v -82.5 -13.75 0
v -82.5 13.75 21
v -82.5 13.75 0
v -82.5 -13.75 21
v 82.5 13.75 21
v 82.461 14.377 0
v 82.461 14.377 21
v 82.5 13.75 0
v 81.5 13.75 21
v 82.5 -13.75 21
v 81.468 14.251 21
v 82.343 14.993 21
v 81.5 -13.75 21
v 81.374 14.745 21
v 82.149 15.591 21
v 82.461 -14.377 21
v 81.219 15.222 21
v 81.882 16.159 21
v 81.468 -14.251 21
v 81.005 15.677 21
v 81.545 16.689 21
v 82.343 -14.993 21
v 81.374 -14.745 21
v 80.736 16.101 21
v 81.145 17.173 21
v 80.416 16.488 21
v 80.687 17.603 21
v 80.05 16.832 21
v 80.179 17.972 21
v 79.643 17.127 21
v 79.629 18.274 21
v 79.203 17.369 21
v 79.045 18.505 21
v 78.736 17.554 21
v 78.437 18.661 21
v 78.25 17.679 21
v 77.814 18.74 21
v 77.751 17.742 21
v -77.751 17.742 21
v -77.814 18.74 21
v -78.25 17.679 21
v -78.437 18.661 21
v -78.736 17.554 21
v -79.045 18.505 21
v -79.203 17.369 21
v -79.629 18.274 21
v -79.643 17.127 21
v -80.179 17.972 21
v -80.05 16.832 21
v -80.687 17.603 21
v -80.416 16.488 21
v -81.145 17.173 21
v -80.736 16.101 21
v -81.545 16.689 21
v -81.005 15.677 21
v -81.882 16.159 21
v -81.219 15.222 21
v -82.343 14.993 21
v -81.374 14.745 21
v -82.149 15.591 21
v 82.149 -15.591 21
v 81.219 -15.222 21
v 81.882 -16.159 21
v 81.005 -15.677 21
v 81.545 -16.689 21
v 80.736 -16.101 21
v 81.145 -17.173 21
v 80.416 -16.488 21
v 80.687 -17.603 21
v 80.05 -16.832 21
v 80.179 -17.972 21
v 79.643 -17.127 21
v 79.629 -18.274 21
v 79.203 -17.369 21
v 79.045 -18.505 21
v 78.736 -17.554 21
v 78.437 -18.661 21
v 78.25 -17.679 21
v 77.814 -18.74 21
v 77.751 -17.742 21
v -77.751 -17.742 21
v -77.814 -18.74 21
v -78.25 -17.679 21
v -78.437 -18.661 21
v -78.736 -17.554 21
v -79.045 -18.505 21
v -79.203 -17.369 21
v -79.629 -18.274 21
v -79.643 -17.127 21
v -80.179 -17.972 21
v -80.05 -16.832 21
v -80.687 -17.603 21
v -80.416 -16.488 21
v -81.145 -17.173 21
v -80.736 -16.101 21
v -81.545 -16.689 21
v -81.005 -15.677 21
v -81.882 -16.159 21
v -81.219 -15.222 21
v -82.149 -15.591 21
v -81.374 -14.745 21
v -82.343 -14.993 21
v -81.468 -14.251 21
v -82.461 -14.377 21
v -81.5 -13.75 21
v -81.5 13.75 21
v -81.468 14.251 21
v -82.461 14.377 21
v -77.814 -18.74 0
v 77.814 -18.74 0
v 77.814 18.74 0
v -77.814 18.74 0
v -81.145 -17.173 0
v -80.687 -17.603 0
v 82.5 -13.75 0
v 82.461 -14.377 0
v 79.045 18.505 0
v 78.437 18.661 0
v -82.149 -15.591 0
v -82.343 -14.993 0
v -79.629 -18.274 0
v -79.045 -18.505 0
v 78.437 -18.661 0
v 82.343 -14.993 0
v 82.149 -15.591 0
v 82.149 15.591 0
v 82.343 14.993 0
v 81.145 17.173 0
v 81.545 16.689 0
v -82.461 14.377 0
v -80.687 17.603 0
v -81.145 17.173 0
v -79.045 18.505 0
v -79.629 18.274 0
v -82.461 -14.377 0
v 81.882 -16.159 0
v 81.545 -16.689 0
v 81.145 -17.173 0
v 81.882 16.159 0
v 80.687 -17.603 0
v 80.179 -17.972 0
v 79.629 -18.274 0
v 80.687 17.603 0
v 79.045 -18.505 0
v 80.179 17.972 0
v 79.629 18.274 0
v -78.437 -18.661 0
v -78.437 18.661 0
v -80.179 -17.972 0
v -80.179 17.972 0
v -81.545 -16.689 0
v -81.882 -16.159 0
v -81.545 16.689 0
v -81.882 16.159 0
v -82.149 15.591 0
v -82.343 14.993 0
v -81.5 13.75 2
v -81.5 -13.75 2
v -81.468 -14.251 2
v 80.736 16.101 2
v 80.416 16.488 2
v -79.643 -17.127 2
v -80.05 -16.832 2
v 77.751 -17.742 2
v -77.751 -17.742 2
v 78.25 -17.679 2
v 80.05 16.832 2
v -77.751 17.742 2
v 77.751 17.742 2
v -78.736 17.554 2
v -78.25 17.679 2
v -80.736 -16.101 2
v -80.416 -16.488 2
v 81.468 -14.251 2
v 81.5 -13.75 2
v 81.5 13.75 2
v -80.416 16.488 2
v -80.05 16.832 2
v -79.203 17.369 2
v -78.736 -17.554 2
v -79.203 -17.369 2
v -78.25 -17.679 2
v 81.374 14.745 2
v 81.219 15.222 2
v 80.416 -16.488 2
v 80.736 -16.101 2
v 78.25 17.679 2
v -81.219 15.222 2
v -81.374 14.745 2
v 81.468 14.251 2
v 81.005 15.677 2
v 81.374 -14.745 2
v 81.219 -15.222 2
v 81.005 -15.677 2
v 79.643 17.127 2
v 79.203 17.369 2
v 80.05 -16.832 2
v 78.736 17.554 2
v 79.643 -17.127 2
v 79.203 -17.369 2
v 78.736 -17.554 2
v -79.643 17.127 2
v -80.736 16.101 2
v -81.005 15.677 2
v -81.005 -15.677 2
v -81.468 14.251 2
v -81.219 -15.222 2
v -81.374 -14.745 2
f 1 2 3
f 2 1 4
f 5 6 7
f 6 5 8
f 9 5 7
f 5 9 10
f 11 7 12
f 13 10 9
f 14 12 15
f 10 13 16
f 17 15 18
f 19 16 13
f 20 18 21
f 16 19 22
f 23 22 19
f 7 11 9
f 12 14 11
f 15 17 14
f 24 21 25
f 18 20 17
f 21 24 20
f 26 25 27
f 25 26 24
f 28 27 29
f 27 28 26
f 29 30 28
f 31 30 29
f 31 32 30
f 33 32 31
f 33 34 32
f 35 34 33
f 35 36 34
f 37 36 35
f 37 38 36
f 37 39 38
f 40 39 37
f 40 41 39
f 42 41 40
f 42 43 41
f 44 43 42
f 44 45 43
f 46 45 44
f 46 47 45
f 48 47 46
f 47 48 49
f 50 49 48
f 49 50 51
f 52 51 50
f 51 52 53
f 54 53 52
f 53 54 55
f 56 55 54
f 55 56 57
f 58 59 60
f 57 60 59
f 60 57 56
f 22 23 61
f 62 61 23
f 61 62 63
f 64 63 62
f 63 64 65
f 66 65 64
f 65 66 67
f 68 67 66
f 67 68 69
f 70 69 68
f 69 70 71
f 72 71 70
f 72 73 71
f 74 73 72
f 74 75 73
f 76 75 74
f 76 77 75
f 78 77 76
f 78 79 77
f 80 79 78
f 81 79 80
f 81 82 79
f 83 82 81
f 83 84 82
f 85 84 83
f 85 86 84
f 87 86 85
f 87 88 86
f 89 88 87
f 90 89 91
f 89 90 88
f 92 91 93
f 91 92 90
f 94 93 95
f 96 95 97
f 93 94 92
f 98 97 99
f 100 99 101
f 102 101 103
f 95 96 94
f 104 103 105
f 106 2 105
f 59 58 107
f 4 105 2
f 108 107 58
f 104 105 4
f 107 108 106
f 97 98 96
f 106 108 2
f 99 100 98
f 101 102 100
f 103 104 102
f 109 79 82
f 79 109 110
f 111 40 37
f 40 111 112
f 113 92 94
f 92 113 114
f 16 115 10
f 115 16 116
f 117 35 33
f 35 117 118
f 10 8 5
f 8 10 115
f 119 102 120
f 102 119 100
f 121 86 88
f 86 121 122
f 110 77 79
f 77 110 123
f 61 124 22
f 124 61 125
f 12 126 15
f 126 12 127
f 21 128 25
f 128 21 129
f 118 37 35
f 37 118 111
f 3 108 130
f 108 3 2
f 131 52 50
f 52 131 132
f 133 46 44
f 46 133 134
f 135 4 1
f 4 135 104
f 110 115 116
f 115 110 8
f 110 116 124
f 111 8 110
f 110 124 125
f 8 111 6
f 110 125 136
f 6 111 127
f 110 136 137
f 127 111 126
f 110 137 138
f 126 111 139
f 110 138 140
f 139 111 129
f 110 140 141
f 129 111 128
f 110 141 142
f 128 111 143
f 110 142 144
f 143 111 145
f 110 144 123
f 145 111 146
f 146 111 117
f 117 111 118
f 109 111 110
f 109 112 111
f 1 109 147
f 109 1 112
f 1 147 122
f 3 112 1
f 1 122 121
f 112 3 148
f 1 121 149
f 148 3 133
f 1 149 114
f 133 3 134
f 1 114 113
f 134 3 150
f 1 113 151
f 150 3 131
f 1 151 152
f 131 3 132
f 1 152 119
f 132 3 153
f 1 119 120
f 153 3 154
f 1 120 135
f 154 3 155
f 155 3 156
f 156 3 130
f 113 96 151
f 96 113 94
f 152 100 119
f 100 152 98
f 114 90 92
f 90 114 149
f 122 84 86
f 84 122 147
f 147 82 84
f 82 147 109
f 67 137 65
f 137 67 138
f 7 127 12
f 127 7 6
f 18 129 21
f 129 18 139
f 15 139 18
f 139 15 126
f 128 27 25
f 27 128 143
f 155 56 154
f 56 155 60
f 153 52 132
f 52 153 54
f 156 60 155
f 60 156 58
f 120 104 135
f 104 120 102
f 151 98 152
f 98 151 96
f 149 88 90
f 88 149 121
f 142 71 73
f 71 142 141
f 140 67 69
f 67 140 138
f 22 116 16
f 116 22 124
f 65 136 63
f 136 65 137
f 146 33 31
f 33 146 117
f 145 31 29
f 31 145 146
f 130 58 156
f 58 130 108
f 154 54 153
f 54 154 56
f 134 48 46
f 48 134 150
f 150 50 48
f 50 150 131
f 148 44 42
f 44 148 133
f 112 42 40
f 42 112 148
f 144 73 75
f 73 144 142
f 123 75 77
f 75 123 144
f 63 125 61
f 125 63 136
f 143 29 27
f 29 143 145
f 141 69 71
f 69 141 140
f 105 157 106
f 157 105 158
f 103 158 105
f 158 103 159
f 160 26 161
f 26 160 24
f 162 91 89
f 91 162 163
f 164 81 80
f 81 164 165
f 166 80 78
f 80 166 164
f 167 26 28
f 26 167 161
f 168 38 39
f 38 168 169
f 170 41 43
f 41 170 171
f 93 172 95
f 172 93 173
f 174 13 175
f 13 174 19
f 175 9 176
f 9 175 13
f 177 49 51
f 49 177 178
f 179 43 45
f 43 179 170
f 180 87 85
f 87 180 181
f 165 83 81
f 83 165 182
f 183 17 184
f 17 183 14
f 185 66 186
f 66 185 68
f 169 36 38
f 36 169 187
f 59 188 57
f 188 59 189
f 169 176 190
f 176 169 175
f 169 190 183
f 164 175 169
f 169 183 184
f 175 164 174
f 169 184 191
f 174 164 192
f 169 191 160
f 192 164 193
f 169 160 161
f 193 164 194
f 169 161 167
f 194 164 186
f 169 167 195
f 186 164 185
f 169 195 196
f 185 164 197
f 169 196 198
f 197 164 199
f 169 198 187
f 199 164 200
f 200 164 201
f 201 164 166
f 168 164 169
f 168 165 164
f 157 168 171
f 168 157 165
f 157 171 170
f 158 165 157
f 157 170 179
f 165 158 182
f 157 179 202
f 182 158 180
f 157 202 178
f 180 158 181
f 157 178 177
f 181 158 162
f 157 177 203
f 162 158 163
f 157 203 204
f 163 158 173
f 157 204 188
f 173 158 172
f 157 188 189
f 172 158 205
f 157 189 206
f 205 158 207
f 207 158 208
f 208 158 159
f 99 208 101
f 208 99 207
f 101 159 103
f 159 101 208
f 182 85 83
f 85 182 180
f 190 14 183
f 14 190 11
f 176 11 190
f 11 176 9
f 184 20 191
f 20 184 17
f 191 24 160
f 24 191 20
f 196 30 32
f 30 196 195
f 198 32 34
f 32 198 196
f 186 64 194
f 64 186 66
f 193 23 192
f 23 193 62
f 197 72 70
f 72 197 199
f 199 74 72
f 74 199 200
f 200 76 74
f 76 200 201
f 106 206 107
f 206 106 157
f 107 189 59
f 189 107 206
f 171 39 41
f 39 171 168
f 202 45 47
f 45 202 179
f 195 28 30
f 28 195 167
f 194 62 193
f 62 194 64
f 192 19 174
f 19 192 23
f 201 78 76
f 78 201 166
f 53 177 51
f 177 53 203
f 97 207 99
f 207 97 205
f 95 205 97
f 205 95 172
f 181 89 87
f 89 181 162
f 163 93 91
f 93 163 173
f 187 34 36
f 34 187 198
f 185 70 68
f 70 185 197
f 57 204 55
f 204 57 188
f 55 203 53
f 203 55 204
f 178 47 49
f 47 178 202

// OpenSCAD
$fn = 50;


difference() {
	union() {
		hull() {
			translate(v = [-77.5000000000, 13.7500000000, 0]) {
				cylinder(h = 21, r = 5);
			}
			translate(v = [77.5000000000, 13.7500000000, 0]) {
				cylinder(h = 21, r = 5);
			}
			translate(v = [-77.5000000000, -13.7500000000, 0]) {
				cylinder(h = 21, r = 5);
			}
			translate(v = [77.5000000000, -13.7500000000, 0]) {
				cylinder(h = 21, r = 5);
			}
		}
	}
	union() {
		translate(v = [0, 0, 2]) {
			hull() {
				translate(v = [-77.5000000000, 13.7500000000, 0]) {
					cylinder(h = 19, r = 4);
				}
				translate(v = [77.5000000000, 13.7500000000, 0]) {
					cylinder(h = 19, r = 4);
				}
				translate(v = [-77.5000000000, -13.7500000000, 0]) {
					cylinder(h = 19, r = 4);
				}
				translate(v = [77.5000000000, -13.7500000000, 0]) {
					cylinder(h = 19, r = 4);
				}
			}
		}
	}
}
